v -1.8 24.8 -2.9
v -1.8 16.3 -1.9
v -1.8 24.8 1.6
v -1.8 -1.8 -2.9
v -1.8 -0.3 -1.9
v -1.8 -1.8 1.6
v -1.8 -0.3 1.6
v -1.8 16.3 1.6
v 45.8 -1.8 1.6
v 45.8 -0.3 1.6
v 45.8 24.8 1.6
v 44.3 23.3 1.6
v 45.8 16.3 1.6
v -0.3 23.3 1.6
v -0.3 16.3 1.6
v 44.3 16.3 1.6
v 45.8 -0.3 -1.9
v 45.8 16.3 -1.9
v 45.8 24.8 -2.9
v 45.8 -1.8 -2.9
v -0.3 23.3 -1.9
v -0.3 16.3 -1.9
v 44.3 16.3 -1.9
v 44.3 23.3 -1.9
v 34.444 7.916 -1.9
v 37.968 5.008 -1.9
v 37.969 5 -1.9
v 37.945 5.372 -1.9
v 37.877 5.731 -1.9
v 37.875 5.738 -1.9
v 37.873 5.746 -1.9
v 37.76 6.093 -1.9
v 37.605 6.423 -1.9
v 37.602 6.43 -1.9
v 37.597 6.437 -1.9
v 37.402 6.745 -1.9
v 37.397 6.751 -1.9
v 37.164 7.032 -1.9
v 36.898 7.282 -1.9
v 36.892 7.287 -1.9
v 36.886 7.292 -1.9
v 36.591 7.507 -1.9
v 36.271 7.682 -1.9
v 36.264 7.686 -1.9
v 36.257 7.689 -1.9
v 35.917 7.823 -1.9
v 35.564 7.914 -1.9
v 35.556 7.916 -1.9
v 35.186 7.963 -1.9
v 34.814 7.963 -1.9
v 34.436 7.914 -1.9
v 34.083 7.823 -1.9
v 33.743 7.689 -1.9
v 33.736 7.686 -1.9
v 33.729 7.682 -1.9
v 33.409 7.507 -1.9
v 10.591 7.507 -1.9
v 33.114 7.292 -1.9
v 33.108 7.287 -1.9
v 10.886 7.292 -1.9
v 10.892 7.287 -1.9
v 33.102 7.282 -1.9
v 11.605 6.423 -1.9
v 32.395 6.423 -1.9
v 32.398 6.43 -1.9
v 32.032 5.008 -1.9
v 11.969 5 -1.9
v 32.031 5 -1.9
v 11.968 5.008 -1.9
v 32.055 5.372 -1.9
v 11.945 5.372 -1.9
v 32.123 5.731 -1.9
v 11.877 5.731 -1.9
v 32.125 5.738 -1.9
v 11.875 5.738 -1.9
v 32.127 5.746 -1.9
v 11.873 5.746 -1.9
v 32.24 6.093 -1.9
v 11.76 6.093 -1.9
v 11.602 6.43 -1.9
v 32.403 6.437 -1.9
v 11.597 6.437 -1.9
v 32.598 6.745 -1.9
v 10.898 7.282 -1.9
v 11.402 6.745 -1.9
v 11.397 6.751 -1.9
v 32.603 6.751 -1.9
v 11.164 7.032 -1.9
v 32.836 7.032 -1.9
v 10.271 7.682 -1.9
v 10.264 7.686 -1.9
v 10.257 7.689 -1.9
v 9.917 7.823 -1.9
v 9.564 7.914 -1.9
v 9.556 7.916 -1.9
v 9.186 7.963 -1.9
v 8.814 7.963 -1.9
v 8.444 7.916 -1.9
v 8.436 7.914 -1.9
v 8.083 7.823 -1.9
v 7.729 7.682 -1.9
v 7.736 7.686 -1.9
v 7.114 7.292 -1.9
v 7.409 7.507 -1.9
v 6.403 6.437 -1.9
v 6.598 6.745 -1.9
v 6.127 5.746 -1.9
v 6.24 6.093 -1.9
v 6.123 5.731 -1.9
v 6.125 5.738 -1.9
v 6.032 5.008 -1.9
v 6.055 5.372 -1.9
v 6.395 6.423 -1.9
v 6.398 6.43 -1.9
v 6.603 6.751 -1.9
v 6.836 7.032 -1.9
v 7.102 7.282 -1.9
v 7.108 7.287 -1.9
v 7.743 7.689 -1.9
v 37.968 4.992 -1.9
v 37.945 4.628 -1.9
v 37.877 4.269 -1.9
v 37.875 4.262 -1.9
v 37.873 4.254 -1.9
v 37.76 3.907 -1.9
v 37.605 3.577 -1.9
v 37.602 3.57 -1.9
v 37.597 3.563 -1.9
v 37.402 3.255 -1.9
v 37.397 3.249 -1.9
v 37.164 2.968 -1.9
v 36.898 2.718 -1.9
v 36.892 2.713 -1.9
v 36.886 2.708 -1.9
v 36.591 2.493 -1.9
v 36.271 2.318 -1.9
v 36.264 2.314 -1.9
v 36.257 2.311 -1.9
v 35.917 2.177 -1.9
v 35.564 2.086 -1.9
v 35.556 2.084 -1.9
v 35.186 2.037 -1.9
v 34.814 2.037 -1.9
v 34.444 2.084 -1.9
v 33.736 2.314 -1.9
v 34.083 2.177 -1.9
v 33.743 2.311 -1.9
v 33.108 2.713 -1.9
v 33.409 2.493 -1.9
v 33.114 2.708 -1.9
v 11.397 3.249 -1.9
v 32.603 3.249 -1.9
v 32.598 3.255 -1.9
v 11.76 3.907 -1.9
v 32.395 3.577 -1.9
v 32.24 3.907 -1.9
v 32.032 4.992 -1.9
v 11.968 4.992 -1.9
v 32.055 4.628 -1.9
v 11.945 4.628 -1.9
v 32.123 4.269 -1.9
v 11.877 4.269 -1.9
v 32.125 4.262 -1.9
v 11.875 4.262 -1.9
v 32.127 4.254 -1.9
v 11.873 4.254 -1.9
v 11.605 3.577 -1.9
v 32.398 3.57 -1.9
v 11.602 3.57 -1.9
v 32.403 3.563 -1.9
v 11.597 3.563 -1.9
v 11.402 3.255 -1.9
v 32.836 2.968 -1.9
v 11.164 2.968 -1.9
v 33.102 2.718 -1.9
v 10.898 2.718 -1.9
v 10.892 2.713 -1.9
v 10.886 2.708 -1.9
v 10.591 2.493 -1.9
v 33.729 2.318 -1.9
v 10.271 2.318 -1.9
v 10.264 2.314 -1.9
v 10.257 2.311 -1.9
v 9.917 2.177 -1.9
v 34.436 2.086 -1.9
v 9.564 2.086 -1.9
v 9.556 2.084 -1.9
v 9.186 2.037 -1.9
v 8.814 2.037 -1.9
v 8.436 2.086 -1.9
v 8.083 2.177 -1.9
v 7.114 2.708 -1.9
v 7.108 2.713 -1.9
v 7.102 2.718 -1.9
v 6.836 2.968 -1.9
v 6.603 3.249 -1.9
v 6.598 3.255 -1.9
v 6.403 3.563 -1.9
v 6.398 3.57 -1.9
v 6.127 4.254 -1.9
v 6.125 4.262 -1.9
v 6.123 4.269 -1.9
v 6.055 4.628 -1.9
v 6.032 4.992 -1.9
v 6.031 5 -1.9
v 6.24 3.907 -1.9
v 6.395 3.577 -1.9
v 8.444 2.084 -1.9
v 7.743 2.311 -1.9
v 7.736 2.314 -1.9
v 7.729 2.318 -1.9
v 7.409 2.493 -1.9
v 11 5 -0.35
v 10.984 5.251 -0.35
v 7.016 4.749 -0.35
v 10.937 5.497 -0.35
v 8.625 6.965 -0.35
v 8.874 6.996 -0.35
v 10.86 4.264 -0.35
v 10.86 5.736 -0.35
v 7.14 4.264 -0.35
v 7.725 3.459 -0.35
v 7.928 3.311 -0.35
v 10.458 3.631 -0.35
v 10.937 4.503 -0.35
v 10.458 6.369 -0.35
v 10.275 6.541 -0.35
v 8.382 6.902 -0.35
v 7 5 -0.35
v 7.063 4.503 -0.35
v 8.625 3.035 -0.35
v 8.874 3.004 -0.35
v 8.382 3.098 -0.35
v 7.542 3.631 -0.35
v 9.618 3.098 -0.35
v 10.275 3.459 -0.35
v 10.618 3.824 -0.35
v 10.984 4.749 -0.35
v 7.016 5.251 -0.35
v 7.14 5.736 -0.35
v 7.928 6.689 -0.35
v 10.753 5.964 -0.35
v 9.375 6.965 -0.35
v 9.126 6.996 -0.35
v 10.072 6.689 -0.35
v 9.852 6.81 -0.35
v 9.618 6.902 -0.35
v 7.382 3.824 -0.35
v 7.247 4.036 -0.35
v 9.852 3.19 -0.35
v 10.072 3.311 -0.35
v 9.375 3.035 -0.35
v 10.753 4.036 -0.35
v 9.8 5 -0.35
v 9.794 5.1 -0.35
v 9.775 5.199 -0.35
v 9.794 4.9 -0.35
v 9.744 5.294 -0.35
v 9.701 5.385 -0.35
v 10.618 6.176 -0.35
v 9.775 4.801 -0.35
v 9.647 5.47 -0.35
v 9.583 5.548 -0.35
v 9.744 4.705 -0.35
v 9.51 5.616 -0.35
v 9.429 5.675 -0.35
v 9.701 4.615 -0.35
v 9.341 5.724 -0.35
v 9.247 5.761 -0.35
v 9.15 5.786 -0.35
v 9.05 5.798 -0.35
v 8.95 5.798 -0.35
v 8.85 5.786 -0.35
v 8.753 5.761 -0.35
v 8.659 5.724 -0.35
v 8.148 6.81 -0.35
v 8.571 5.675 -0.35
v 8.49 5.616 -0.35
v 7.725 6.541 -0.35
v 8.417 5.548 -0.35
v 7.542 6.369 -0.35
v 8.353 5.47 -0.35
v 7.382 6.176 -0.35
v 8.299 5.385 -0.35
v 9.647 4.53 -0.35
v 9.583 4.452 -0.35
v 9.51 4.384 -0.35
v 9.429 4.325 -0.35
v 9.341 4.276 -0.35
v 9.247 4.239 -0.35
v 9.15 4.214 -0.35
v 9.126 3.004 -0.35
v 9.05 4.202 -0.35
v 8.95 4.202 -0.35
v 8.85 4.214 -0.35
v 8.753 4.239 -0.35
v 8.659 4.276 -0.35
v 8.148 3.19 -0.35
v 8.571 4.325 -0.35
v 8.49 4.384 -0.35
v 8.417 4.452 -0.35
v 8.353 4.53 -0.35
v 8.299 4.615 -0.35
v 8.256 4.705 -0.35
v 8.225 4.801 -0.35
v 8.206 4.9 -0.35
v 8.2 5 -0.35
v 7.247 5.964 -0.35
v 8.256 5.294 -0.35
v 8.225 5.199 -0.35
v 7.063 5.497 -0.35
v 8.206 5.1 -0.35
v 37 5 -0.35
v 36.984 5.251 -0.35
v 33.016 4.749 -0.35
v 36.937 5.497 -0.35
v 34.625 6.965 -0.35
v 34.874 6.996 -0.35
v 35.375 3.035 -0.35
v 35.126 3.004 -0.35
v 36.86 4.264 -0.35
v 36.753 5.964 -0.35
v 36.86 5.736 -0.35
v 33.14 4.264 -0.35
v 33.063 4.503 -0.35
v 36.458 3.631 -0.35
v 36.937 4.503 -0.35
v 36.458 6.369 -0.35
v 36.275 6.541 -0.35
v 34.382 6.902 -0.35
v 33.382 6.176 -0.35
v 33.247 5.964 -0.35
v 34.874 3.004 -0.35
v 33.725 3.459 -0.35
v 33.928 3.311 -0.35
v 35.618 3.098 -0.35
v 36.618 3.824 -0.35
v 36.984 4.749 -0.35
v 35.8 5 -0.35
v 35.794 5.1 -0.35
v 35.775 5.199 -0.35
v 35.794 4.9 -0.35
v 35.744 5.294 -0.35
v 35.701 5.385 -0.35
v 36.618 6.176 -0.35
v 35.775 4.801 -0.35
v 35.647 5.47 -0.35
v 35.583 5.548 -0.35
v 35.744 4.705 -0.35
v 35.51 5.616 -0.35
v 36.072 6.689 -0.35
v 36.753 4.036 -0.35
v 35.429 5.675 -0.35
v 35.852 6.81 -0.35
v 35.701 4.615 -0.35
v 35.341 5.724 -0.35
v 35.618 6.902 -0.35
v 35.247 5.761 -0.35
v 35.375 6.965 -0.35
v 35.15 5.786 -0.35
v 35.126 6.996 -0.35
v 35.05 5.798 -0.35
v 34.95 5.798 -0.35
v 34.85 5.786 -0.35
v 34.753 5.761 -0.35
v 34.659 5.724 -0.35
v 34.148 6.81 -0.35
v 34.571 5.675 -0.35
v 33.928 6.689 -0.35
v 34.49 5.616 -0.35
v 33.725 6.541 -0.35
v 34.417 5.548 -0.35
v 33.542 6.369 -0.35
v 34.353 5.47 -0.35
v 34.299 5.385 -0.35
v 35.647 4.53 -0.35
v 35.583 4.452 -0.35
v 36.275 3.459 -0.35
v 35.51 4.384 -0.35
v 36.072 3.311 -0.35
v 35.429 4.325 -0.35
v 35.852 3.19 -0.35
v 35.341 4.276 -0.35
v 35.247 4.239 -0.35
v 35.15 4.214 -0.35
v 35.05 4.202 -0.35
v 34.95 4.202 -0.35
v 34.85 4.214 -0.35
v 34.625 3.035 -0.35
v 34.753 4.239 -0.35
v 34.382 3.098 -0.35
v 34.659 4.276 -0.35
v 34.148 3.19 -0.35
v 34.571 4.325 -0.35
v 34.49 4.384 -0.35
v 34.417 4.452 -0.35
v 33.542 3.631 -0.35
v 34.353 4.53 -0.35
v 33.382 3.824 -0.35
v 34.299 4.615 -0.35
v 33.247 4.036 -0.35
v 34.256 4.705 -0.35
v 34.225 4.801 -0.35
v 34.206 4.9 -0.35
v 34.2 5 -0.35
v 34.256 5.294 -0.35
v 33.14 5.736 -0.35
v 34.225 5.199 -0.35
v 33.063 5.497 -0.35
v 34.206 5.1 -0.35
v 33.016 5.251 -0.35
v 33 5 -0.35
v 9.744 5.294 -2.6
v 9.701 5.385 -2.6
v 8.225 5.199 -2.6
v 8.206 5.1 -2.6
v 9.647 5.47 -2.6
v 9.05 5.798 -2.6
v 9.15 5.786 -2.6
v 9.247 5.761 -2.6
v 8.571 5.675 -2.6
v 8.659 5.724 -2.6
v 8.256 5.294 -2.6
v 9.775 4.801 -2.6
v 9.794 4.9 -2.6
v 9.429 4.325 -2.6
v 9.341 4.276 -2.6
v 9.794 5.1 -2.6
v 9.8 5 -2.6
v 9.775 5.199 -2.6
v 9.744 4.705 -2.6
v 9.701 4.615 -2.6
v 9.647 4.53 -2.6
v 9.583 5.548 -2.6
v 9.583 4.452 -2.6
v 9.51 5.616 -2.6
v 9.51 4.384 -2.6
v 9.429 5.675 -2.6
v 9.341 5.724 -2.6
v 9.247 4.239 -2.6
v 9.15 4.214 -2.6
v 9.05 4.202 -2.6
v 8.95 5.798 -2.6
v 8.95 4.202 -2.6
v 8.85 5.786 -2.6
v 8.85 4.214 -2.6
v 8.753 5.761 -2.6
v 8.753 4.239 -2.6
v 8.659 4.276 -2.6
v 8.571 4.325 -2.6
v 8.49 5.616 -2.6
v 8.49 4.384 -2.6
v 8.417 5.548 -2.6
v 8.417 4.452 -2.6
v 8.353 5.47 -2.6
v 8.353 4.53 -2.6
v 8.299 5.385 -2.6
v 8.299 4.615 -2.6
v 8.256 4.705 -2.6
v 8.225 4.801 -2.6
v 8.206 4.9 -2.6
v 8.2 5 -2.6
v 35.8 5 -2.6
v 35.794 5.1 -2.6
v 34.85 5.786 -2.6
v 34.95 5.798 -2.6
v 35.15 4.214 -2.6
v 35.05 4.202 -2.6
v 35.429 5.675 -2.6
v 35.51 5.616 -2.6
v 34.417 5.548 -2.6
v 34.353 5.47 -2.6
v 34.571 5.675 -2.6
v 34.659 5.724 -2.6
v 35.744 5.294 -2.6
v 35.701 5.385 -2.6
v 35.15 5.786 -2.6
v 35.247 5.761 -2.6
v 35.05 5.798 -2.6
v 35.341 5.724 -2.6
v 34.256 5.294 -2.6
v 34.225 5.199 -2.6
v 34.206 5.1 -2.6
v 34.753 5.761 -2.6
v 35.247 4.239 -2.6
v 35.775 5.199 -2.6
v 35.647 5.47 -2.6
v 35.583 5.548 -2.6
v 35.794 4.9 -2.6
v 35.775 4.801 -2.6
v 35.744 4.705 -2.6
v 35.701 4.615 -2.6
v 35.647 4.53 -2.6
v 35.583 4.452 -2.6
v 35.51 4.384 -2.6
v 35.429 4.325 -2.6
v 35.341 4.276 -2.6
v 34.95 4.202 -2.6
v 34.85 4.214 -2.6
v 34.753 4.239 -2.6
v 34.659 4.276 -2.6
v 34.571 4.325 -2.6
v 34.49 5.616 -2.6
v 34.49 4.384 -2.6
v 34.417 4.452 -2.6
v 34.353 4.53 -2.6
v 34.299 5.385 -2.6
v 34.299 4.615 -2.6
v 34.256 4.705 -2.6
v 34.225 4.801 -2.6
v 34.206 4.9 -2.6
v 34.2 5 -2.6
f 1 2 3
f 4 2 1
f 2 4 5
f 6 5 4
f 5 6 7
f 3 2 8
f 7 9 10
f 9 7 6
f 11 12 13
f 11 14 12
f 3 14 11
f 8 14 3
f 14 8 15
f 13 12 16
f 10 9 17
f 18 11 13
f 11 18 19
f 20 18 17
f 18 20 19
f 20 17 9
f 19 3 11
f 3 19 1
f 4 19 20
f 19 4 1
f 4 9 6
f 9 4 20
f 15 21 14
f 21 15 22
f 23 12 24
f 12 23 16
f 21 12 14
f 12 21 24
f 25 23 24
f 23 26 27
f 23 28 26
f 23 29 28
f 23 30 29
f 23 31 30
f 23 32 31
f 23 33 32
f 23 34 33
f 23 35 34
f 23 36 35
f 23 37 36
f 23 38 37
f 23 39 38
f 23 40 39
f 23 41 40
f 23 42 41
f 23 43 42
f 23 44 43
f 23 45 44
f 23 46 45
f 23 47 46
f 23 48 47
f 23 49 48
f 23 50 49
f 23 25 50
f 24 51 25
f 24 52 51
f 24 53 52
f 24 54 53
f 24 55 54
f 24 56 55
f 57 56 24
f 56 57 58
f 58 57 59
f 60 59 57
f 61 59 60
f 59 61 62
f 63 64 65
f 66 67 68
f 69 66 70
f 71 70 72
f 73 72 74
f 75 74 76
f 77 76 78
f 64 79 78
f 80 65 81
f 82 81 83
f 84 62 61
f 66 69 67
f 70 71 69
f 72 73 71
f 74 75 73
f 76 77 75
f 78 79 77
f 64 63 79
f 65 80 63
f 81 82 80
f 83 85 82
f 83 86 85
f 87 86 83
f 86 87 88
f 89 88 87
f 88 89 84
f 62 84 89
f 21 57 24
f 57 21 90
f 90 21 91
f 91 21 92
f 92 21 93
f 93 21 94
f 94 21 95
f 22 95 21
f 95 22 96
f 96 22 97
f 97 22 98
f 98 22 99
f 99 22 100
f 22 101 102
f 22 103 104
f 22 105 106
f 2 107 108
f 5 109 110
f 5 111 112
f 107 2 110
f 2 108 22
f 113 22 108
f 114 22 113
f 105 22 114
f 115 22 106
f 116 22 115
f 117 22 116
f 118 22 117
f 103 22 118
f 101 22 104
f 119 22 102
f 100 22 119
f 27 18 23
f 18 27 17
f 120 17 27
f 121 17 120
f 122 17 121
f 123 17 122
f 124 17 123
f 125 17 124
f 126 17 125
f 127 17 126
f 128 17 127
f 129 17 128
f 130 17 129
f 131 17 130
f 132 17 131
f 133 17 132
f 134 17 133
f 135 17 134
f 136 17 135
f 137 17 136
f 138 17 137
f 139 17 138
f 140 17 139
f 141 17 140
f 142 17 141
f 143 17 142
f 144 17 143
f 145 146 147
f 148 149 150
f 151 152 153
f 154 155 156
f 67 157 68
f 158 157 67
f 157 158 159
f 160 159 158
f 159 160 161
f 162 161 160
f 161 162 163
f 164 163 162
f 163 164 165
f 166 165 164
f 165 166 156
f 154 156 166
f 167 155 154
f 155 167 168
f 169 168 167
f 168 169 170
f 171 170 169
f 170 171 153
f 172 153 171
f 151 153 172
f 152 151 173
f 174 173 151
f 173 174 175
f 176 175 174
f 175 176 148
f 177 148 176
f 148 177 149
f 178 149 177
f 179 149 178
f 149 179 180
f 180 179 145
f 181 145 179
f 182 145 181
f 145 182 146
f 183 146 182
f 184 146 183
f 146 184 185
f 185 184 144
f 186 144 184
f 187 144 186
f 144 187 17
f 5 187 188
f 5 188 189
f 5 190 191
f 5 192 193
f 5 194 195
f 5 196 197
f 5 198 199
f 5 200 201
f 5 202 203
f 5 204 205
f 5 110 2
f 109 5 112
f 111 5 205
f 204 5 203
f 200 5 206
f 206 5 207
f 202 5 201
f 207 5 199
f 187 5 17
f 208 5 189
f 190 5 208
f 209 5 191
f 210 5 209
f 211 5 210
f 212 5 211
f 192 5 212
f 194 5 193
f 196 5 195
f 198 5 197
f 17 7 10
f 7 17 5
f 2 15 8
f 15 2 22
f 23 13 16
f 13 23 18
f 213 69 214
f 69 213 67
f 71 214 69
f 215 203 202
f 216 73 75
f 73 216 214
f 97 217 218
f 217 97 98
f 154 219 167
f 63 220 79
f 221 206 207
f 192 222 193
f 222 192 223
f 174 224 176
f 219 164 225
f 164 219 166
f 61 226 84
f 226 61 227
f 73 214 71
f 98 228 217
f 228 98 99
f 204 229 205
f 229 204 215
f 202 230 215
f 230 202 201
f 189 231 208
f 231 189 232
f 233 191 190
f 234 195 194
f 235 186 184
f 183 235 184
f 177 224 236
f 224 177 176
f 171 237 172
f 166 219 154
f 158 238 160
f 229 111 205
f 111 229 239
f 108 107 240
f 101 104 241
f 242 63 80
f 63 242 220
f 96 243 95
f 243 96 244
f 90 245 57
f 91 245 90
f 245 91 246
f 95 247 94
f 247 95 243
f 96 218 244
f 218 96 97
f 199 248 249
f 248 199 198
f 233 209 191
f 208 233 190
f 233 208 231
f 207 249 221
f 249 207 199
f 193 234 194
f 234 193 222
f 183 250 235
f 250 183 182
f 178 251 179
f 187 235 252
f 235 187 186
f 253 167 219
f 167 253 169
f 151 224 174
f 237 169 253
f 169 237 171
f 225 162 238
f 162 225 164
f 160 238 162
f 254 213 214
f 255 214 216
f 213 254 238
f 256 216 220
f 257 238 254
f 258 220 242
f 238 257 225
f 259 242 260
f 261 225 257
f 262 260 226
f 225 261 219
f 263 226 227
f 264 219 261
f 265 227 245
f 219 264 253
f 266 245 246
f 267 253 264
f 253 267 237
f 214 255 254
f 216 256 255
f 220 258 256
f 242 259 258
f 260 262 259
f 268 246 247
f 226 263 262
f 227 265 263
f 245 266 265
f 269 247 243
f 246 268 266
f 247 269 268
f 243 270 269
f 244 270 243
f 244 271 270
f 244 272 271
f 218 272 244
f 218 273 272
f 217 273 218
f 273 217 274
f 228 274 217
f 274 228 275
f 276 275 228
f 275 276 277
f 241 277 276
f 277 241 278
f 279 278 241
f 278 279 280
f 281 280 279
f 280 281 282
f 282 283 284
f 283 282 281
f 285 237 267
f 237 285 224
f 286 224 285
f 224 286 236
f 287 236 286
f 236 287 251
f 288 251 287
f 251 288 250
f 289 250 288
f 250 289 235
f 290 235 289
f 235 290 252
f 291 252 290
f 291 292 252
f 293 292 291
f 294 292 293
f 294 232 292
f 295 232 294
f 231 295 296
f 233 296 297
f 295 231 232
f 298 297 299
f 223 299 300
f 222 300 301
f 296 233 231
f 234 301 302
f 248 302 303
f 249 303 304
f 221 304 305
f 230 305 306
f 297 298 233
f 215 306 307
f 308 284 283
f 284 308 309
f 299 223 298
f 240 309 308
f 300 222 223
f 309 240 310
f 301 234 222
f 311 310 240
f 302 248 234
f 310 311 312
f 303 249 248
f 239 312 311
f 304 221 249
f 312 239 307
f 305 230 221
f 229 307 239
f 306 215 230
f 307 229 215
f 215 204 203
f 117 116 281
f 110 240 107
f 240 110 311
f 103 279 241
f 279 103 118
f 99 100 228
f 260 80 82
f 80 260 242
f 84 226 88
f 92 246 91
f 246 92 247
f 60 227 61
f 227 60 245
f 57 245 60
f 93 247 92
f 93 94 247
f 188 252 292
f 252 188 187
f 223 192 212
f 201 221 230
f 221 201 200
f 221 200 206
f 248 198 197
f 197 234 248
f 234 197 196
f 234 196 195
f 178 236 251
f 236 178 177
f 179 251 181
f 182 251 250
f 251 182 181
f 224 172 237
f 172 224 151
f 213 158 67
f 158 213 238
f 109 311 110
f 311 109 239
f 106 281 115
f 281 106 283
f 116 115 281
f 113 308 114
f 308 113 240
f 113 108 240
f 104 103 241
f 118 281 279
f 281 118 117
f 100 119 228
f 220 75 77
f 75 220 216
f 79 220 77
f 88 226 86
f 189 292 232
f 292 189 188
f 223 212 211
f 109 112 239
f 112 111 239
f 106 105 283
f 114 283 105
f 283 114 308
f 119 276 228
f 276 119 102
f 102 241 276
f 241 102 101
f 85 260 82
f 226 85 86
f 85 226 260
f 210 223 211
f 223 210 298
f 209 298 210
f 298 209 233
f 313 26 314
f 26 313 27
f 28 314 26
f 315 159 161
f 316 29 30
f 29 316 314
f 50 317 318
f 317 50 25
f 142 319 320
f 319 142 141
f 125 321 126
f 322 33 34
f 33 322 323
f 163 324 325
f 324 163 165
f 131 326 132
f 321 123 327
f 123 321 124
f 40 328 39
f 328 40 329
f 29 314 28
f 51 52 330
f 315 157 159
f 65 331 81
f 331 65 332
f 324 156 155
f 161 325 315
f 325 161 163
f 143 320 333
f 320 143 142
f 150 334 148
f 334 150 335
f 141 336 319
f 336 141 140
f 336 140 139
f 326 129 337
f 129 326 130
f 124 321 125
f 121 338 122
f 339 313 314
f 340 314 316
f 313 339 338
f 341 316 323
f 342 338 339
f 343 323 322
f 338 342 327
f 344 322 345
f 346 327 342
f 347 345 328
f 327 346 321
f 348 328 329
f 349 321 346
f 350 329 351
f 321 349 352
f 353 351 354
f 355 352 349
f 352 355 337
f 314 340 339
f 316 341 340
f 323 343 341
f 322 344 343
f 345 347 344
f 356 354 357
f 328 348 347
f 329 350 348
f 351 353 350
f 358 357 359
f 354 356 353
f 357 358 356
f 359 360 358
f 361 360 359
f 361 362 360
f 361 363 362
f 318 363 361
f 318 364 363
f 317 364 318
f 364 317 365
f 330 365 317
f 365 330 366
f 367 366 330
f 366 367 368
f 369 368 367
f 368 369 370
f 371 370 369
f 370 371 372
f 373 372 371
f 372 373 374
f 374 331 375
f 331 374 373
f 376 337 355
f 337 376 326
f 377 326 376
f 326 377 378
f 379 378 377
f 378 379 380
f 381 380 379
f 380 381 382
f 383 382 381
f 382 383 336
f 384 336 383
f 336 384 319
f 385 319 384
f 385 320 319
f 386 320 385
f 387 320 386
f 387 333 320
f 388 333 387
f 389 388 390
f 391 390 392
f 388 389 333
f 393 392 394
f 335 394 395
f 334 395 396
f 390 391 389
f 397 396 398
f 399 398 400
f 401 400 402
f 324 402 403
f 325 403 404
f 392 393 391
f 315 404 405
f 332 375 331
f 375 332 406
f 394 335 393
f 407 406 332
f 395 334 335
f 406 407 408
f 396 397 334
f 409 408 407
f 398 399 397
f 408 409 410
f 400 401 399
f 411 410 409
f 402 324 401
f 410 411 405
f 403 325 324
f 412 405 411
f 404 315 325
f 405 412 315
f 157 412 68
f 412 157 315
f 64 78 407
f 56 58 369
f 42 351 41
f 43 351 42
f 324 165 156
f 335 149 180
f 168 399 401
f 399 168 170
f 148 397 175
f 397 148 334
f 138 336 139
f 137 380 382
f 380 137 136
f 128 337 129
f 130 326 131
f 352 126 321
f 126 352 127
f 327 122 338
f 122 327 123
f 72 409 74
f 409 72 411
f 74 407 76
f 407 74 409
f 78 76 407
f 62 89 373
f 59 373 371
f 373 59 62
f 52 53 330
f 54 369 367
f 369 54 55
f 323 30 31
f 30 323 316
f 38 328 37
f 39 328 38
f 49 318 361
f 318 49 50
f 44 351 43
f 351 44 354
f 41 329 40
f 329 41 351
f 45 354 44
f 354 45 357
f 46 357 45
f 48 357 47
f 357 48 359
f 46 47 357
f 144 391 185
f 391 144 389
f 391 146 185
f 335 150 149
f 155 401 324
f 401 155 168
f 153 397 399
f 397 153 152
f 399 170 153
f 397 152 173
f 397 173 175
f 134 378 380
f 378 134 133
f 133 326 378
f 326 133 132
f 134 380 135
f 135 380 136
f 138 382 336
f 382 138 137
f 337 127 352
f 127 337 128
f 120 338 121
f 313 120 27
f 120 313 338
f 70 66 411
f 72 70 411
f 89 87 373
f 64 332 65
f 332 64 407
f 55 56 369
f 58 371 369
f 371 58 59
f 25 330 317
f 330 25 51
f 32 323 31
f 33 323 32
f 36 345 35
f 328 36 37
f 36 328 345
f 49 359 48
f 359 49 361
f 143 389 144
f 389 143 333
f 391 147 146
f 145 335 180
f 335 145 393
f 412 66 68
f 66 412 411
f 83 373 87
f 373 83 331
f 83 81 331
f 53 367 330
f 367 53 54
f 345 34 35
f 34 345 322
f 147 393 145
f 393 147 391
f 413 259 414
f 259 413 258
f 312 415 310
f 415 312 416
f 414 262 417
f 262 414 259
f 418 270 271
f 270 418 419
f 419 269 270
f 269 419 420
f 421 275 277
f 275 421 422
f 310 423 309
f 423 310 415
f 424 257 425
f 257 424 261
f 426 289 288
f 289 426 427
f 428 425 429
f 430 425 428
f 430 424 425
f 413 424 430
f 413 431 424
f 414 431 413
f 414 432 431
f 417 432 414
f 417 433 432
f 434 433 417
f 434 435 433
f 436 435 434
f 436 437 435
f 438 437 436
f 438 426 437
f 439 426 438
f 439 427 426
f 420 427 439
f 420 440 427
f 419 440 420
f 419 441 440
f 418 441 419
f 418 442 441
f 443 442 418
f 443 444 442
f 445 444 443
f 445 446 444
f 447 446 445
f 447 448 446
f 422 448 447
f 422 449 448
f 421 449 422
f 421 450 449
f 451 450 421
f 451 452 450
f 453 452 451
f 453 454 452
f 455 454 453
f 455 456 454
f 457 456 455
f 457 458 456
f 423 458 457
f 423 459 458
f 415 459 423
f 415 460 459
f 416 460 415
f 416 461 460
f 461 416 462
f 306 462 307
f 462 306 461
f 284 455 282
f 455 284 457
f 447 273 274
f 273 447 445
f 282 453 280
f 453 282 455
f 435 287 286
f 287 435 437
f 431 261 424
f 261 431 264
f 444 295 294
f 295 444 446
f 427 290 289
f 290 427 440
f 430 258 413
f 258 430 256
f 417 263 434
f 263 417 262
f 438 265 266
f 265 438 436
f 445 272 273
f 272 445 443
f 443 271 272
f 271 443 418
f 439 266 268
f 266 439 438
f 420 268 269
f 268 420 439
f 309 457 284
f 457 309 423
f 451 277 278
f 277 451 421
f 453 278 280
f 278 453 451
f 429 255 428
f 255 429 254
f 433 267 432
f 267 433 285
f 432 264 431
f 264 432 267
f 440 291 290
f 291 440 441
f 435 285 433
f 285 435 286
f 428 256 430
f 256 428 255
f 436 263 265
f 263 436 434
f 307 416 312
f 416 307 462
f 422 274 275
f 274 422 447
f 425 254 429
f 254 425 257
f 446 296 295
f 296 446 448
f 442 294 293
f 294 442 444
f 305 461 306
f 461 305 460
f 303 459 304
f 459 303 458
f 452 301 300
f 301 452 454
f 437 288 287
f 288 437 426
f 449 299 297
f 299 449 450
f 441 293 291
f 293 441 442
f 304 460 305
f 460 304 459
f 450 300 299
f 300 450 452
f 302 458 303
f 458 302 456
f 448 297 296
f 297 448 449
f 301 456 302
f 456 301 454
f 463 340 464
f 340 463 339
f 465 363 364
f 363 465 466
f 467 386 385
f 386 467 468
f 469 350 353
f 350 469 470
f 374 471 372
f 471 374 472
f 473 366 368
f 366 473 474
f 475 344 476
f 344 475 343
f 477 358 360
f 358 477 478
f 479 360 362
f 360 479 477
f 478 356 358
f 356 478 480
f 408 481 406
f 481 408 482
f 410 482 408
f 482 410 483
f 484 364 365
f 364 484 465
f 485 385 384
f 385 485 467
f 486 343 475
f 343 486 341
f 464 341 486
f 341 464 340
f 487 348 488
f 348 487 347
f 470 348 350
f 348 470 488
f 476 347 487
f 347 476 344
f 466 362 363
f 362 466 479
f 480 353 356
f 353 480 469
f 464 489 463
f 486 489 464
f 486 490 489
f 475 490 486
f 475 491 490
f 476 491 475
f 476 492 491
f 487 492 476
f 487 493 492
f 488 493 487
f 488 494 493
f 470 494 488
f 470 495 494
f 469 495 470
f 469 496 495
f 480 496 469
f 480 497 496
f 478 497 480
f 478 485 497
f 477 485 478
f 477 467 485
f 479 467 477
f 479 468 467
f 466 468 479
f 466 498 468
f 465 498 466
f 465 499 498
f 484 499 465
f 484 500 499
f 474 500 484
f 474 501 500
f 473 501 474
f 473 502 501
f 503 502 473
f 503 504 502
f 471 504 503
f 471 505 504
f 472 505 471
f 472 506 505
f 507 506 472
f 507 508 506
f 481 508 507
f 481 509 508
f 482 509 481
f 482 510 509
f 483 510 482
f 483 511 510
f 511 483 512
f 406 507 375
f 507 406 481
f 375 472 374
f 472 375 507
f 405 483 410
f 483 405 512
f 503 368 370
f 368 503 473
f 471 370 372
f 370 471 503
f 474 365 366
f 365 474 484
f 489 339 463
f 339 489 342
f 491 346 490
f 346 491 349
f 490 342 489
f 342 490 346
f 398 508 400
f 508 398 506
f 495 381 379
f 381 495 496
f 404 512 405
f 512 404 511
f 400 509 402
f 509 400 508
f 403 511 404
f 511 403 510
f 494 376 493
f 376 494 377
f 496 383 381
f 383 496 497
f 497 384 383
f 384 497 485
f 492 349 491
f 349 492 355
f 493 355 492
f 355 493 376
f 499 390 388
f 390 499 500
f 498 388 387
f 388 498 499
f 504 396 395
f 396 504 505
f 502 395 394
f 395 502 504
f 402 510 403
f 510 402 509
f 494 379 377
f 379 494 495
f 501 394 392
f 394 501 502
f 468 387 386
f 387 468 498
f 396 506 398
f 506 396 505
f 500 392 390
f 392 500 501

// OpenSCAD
// Case for the LANE Boys RC DIY light controller Mk4S and Mk4P
//
// Print with 0.2 mm layer height

$fn = 50;
fudge = 0.05;
fudge2 = 2 * fudge;

gap = 0.3;

wall_t = 1.5;
bottom_t = 1;

pcb = [44, 23, 1.6];

cutout_z = 3.5;


pcb_cutout = [pcb.x+2*gap, pcb.y+2*gap, cutout_z+fudge];
pcb_cutout_offset = [-gap, -gap, pcb.z-cutout_z];

dim = pcb_cutout + [2*wall_t, 2*wall_t, bottom_t-fudge];
case_offset = [-wall_t-gap, -wall_t-gap, pcb_cutout_offset.z-bottom_t];

connector_w = 16;

connector_cutout = [2*pcb.x, connector_w+2*gap, cutout_z+fudge];
connector_cutout_offset = pcb_cutout_offset-[pcb.x/2, 0, 0];

post_d1 = 4;
post_d12 = 6;
post_h1 = cutout_z-pcb.z - 0.3; // Reduce height slightly due to printing not being precise
hole_d = 1.6;                   // Determined through test prints, may not work on your printer...

post1_pos = [9, 5, pcb_cutout_offset.z-fudge];
post2_pos = [pcb.x-9, 5, pcb_cutout_offset.z-fudge];

hole1_pos = post1_pos - [0, 0, bottom_t-fudge-0.3];
hole2_pos = post2_pos - [0, 0, bottom_t-fudge-0.3];

difference() {
    union() {
        difference() {
            translate(case_offset) cube(dim);
            translate(pcb_cutout_offset) cube(pcb_cutout);
            translate(connector_cutout_offset) cube(connector_cutout);
        }

        translate(post1_pos) post();
        translate(post2_pos) post();
    }
    
    translate(hole1_pos) cylinder(d=hole_d, h=2*post_h1);
    translate(hole2_pos) cylinder(d=hole_d, h=2*post_h1);
}

module post() {
    cylinder(d1=post_d12, d2=post_d1, h=post_h1);
}

//color("salmon") cube(pcb);
